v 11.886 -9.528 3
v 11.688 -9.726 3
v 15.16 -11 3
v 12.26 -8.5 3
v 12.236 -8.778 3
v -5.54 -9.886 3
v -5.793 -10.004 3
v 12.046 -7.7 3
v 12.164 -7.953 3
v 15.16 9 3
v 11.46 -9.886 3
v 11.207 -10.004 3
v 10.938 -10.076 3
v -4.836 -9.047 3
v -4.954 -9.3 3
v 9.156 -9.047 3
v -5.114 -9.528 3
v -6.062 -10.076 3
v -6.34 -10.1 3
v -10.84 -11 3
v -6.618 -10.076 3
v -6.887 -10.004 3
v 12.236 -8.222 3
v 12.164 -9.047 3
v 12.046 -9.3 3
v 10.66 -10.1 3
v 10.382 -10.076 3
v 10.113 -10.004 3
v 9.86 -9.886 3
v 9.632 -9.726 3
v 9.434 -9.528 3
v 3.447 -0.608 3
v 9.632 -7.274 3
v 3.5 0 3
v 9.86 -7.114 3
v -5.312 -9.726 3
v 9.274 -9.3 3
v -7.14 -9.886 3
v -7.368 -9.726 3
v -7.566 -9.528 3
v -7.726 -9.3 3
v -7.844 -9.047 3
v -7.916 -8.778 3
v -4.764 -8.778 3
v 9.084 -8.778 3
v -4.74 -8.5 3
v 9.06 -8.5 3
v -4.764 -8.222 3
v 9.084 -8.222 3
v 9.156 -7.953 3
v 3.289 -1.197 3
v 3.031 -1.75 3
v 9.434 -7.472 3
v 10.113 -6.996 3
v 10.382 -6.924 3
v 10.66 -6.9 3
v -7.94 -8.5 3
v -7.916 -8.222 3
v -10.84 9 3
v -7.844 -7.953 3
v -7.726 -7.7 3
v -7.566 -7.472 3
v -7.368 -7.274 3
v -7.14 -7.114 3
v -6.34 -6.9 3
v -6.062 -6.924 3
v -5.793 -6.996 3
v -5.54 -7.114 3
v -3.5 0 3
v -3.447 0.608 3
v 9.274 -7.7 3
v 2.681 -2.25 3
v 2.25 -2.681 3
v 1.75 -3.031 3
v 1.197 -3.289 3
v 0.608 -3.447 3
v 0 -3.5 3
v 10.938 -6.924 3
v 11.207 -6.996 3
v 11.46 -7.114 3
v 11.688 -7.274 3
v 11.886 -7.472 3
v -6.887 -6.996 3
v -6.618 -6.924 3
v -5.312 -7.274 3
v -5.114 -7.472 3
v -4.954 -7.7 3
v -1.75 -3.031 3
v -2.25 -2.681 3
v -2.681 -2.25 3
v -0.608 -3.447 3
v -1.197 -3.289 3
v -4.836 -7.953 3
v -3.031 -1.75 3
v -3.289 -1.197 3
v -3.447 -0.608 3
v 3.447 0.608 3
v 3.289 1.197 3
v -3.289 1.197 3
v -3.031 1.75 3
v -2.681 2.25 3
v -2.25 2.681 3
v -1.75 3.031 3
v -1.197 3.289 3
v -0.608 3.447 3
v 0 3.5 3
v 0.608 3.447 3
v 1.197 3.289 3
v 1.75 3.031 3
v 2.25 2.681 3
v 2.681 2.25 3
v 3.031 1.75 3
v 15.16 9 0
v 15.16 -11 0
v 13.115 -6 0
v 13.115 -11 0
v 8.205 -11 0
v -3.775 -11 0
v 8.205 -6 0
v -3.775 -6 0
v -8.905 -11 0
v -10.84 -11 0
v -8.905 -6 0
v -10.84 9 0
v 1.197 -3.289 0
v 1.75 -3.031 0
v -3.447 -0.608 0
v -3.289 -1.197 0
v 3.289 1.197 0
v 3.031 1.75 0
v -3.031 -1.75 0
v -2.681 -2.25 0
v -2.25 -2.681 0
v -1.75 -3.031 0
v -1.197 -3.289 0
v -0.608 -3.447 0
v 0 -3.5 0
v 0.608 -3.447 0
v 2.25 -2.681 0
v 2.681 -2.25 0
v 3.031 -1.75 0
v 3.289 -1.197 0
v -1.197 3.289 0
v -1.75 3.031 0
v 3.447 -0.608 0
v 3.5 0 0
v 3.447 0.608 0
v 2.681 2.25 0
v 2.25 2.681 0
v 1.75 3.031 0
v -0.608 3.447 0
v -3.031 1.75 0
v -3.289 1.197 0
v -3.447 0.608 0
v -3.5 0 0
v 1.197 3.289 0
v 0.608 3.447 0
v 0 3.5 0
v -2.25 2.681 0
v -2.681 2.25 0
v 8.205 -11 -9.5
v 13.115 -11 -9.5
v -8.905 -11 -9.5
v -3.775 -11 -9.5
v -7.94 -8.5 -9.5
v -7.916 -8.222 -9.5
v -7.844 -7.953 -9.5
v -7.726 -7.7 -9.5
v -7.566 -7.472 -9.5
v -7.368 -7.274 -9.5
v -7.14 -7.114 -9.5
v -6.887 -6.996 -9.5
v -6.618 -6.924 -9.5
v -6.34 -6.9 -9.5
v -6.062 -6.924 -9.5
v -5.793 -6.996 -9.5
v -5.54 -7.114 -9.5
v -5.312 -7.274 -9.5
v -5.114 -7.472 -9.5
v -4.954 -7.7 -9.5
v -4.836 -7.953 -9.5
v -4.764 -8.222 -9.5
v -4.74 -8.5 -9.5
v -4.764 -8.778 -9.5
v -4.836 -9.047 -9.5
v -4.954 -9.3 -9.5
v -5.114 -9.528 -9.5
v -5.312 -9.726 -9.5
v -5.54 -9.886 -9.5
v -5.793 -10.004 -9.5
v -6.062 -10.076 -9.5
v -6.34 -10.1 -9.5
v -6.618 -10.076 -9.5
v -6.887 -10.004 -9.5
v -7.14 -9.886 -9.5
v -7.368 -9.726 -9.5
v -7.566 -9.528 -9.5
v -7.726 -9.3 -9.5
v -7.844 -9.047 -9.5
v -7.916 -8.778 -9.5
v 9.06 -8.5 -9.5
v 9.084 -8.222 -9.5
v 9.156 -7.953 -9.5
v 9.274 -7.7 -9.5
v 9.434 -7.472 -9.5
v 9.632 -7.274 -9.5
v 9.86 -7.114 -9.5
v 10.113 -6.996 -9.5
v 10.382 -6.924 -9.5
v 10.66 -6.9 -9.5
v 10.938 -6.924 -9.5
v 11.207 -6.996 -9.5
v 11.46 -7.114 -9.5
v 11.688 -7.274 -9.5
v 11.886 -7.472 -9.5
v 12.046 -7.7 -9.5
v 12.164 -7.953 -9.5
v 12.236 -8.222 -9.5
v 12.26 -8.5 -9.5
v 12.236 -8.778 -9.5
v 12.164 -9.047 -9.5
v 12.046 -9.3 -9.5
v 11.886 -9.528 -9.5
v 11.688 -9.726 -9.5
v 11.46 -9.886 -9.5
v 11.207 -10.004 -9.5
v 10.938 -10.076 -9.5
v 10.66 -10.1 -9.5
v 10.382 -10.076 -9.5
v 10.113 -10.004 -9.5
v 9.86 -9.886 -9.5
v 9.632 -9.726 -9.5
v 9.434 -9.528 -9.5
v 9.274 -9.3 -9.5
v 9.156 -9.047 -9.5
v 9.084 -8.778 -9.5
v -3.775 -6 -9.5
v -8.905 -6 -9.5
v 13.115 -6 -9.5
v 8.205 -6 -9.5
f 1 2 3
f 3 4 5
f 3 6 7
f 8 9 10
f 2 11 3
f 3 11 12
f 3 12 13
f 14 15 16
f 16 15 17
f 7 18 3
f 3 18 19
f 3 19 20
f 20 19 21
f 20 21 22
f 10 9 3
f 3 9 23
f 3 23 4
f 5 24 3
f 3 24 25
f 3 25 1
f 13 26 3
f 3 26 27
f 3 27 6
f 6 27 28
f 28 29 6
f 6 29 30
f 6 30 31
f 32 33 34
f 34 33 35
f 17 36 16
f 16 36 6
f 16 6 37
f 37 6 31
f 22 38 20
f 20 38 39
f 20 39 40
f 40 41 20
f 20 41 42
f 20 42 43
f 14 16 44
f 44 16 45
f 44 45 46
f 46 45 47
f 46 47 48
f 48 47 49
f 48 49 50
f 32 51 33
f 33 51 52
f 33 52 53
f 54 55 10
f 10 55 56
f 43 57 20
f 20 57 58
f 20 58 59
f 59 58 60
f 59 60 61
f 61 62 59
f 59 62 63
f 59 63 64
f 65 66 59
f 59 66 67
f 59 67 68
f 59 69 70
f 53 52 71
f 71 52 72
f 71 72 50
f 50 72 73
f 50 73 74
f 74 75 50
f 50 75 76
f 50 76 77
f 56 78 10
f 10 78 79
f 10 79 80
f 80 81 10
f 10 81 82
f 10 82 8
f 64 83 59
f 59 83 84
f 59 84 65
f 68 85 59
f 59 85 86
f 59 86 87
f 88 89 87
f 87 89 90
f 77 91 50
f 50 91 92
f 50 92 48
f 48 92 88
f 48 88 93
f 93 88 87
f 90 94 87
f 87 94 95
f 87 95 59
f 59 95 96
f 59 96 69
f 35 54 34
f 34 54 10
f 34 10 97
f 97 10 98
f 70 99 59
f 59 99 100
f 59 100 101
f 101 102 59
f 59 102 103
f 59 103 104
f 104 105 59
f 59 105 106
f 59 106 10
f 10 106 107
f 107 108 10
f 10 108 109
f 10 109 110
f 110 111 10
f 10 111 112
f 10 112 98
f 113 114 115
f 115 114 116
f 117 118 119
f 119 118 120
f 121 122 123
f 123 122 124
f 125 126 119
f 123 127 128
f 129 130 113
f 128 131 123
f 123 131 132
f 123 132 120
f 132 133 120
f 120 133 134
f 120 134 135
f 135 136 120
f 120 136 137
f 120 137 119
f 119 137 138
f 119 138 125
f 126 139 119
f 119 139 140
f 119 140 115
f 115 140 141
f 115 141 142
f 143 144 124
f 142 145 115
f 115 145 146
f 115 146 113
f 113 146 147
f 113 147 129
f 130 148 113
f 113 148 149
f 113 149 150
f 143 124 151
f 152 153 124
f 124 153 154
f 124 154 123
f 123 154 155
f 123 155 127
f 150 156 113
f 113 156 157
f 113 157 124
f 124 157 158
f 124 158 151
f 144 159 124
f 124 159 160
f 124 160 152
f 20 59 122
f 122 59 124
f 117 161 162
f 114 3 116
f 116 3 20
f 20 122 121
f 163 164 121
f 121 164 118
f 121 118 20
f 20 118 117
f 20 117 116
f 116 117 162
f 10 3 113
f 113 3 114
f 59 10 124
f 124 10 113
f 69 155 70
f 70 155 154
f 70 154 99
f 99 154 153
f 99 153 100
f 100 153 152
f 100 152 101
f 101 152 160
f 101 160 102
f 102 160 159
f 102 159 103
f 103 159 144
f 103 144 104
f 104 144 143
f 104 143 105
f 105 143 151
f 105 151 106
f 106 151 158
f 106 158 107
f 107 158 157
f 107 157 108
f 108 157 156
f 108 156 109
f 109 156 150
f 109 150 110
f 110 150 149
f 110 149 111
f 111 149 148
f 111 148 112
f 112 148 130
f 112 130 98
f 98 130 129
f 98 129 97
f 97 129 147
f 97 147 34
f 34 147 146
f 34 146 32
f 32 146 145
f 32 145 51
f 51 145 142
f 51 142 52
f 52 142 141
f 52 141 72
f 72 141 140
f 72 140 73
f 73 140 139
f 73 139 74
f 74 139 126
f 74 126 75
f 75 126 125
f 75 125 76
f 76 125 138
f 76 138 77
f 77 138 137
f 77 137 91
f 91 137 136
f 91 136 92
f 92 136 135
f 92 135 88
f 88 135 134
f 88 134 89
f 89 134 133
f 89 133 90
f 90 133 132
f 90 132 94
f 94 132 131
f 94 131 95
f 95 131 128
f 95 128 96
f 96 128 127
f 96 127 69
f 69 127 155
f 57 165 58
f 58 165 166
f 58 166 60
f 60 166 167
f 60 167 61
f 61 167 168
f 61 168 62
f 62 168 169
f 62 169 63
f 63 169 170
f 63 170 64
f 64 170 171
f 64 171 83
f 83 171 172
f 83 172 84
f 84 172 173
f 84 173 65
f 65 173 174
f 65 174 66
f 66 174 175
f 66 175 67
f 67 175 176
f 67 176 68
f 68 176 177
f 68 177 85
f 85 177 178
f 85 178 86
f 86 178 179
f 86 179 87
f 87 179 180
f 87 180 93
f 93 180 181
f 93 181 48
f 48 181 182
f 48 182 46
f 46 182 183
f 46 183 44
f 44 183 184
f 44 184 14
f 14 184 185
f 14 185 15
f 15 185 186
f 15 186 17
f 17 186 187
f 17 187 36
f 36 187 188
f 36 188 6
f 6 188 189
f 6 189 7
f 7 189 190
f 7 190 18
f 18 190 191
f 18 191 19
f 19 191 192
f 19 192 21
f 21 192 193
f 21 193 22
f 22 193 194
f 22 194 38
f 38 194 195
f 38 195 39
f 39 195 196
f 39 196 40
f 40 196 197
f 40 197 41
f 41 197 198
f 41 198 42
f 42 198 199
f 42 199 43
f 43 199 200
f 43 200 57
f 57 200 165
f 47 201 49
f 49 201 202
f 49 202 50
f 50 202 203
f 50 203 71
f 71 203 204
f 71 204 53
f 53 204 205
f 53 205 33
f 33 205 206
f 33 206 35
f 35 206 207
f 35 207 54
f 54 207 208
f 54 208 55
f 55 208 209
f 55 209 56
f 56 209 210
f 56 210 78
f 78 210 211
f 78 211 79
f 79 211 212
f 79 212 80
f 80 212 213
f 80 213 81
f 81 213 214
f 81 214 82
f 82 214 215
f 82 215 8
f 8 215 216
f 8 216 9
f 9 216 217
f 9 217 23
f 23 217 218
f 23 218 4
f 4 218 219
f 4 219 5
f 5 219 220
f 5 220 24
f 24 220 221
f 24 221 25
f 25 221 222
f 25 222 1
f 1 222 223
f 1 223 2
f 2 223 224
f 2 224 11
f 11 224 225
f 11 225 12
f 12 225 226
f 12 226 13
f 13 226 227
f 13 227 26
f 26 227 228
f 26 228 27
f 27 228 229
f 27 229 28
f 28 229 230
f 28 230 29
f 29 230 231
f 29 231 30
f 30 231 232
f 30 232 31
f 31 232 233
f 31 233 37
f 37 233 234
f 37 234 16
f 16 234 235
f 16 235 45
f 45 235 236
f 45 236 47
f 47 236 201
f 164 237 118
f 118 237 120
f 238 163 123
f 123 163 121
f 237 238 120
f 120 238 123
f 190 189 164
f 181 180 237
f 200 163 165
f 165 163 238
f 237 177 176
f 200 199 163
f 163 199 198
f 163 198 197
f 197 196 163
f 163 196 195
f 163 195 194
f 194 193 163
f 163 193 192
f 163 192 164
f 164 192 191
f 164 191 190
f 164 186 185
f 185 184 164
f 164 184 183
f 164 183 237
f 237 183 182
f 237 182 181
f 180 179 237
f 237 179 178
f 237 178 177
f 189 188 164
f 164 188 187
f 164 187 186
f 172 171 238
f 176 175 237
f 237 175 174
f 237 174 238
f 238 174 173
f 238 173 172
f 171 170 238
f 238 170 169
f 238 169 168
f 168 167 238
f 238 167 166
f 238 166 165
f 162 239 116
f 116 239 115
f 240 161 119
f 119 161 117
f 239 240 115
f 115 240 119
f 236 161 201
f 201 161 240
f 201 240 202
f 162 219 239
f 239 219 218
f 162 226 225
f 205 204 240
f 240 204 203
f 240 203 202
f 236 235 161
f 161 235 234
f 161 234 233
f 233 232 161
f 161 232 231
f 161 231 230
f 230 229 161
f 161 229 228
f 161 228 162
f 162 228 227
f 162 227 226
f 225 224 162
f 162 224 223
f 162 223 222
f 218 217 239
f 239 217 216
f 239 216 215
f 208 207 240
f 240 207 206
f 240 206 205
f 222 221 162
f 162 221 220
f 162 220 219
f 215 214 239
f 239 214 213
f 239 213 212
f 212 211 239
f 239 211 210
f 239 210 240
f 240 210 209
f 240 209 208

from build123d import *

# Parameters (mm, degrees)
SKETCH1_W           = 26
SKETCH1_H           = 20
SKETCH1_R           = 3.5
SKETCH1_R_2         = 1.6
BOSS_EXTRUDE1_DEPTH = 3
BOSS_EXTRUDE2_START = -9.5
SKETCH2_W           = 5.129495452
SKETCH2_H           = 5
SKETCH2_R           = 1.6
SKETCH2_W_2         = 4.90914111
BOSS_EXTRUDE2_DEPTH = 9.5


with BuildPart() as part:
    # Sketch1 → Boss-Extrude1 (new body)
    with BuildSketch(Plane.XY):
        with Locations((2.16, -1)):
            Rectangle(SKETCH1_W, SKETCH1_H)
        Circle(SKETCH1_R, mode=Mode.SUBTRACT)
        with Locations((-6.34, -8.5)):
            Circle(SKETCH1_R_2, mode=Mode.SUBTRACT)
        with Locations((10.66, -8.5)):
            Circle(SKETCH1_R_2, mode=Mode.SUBTRACT)
    extrude(amount=BOSS_EXTRUDE1_DEPTH)

    # Sketch2 → Boss-Extrude2 (add)
    # profile 1 of 2: a face of its own
    with BuildSketch(Plane.XY.offset(BOSS_EXTRUDE2_START)):
        with Locations((-6.34, -8.5)):
            Rectangle(SKETCH2_W, SKETCH2_H)
        with Locations((-6.34, -8.5)):
            Circle(SKETCH2_R, mode=Mode.SUBTRACT)
    # profile 2 of 2: a face of its own
    with BuildSketch(Plane.XY.offset(BOSS_EXTRUDE2_START)):
        with Locations((10.66, -8.5)):
            Rectangle(SKETCH2_W_2, SKETCH2_H)
        with Locations((10.66, -8.5)):
            Circle(SKETCH2_R, mode=Mode.SUBTRACT)
    extrude(amount=BOSS_EXTRUDE2_DEPTH)


solid = part.part
